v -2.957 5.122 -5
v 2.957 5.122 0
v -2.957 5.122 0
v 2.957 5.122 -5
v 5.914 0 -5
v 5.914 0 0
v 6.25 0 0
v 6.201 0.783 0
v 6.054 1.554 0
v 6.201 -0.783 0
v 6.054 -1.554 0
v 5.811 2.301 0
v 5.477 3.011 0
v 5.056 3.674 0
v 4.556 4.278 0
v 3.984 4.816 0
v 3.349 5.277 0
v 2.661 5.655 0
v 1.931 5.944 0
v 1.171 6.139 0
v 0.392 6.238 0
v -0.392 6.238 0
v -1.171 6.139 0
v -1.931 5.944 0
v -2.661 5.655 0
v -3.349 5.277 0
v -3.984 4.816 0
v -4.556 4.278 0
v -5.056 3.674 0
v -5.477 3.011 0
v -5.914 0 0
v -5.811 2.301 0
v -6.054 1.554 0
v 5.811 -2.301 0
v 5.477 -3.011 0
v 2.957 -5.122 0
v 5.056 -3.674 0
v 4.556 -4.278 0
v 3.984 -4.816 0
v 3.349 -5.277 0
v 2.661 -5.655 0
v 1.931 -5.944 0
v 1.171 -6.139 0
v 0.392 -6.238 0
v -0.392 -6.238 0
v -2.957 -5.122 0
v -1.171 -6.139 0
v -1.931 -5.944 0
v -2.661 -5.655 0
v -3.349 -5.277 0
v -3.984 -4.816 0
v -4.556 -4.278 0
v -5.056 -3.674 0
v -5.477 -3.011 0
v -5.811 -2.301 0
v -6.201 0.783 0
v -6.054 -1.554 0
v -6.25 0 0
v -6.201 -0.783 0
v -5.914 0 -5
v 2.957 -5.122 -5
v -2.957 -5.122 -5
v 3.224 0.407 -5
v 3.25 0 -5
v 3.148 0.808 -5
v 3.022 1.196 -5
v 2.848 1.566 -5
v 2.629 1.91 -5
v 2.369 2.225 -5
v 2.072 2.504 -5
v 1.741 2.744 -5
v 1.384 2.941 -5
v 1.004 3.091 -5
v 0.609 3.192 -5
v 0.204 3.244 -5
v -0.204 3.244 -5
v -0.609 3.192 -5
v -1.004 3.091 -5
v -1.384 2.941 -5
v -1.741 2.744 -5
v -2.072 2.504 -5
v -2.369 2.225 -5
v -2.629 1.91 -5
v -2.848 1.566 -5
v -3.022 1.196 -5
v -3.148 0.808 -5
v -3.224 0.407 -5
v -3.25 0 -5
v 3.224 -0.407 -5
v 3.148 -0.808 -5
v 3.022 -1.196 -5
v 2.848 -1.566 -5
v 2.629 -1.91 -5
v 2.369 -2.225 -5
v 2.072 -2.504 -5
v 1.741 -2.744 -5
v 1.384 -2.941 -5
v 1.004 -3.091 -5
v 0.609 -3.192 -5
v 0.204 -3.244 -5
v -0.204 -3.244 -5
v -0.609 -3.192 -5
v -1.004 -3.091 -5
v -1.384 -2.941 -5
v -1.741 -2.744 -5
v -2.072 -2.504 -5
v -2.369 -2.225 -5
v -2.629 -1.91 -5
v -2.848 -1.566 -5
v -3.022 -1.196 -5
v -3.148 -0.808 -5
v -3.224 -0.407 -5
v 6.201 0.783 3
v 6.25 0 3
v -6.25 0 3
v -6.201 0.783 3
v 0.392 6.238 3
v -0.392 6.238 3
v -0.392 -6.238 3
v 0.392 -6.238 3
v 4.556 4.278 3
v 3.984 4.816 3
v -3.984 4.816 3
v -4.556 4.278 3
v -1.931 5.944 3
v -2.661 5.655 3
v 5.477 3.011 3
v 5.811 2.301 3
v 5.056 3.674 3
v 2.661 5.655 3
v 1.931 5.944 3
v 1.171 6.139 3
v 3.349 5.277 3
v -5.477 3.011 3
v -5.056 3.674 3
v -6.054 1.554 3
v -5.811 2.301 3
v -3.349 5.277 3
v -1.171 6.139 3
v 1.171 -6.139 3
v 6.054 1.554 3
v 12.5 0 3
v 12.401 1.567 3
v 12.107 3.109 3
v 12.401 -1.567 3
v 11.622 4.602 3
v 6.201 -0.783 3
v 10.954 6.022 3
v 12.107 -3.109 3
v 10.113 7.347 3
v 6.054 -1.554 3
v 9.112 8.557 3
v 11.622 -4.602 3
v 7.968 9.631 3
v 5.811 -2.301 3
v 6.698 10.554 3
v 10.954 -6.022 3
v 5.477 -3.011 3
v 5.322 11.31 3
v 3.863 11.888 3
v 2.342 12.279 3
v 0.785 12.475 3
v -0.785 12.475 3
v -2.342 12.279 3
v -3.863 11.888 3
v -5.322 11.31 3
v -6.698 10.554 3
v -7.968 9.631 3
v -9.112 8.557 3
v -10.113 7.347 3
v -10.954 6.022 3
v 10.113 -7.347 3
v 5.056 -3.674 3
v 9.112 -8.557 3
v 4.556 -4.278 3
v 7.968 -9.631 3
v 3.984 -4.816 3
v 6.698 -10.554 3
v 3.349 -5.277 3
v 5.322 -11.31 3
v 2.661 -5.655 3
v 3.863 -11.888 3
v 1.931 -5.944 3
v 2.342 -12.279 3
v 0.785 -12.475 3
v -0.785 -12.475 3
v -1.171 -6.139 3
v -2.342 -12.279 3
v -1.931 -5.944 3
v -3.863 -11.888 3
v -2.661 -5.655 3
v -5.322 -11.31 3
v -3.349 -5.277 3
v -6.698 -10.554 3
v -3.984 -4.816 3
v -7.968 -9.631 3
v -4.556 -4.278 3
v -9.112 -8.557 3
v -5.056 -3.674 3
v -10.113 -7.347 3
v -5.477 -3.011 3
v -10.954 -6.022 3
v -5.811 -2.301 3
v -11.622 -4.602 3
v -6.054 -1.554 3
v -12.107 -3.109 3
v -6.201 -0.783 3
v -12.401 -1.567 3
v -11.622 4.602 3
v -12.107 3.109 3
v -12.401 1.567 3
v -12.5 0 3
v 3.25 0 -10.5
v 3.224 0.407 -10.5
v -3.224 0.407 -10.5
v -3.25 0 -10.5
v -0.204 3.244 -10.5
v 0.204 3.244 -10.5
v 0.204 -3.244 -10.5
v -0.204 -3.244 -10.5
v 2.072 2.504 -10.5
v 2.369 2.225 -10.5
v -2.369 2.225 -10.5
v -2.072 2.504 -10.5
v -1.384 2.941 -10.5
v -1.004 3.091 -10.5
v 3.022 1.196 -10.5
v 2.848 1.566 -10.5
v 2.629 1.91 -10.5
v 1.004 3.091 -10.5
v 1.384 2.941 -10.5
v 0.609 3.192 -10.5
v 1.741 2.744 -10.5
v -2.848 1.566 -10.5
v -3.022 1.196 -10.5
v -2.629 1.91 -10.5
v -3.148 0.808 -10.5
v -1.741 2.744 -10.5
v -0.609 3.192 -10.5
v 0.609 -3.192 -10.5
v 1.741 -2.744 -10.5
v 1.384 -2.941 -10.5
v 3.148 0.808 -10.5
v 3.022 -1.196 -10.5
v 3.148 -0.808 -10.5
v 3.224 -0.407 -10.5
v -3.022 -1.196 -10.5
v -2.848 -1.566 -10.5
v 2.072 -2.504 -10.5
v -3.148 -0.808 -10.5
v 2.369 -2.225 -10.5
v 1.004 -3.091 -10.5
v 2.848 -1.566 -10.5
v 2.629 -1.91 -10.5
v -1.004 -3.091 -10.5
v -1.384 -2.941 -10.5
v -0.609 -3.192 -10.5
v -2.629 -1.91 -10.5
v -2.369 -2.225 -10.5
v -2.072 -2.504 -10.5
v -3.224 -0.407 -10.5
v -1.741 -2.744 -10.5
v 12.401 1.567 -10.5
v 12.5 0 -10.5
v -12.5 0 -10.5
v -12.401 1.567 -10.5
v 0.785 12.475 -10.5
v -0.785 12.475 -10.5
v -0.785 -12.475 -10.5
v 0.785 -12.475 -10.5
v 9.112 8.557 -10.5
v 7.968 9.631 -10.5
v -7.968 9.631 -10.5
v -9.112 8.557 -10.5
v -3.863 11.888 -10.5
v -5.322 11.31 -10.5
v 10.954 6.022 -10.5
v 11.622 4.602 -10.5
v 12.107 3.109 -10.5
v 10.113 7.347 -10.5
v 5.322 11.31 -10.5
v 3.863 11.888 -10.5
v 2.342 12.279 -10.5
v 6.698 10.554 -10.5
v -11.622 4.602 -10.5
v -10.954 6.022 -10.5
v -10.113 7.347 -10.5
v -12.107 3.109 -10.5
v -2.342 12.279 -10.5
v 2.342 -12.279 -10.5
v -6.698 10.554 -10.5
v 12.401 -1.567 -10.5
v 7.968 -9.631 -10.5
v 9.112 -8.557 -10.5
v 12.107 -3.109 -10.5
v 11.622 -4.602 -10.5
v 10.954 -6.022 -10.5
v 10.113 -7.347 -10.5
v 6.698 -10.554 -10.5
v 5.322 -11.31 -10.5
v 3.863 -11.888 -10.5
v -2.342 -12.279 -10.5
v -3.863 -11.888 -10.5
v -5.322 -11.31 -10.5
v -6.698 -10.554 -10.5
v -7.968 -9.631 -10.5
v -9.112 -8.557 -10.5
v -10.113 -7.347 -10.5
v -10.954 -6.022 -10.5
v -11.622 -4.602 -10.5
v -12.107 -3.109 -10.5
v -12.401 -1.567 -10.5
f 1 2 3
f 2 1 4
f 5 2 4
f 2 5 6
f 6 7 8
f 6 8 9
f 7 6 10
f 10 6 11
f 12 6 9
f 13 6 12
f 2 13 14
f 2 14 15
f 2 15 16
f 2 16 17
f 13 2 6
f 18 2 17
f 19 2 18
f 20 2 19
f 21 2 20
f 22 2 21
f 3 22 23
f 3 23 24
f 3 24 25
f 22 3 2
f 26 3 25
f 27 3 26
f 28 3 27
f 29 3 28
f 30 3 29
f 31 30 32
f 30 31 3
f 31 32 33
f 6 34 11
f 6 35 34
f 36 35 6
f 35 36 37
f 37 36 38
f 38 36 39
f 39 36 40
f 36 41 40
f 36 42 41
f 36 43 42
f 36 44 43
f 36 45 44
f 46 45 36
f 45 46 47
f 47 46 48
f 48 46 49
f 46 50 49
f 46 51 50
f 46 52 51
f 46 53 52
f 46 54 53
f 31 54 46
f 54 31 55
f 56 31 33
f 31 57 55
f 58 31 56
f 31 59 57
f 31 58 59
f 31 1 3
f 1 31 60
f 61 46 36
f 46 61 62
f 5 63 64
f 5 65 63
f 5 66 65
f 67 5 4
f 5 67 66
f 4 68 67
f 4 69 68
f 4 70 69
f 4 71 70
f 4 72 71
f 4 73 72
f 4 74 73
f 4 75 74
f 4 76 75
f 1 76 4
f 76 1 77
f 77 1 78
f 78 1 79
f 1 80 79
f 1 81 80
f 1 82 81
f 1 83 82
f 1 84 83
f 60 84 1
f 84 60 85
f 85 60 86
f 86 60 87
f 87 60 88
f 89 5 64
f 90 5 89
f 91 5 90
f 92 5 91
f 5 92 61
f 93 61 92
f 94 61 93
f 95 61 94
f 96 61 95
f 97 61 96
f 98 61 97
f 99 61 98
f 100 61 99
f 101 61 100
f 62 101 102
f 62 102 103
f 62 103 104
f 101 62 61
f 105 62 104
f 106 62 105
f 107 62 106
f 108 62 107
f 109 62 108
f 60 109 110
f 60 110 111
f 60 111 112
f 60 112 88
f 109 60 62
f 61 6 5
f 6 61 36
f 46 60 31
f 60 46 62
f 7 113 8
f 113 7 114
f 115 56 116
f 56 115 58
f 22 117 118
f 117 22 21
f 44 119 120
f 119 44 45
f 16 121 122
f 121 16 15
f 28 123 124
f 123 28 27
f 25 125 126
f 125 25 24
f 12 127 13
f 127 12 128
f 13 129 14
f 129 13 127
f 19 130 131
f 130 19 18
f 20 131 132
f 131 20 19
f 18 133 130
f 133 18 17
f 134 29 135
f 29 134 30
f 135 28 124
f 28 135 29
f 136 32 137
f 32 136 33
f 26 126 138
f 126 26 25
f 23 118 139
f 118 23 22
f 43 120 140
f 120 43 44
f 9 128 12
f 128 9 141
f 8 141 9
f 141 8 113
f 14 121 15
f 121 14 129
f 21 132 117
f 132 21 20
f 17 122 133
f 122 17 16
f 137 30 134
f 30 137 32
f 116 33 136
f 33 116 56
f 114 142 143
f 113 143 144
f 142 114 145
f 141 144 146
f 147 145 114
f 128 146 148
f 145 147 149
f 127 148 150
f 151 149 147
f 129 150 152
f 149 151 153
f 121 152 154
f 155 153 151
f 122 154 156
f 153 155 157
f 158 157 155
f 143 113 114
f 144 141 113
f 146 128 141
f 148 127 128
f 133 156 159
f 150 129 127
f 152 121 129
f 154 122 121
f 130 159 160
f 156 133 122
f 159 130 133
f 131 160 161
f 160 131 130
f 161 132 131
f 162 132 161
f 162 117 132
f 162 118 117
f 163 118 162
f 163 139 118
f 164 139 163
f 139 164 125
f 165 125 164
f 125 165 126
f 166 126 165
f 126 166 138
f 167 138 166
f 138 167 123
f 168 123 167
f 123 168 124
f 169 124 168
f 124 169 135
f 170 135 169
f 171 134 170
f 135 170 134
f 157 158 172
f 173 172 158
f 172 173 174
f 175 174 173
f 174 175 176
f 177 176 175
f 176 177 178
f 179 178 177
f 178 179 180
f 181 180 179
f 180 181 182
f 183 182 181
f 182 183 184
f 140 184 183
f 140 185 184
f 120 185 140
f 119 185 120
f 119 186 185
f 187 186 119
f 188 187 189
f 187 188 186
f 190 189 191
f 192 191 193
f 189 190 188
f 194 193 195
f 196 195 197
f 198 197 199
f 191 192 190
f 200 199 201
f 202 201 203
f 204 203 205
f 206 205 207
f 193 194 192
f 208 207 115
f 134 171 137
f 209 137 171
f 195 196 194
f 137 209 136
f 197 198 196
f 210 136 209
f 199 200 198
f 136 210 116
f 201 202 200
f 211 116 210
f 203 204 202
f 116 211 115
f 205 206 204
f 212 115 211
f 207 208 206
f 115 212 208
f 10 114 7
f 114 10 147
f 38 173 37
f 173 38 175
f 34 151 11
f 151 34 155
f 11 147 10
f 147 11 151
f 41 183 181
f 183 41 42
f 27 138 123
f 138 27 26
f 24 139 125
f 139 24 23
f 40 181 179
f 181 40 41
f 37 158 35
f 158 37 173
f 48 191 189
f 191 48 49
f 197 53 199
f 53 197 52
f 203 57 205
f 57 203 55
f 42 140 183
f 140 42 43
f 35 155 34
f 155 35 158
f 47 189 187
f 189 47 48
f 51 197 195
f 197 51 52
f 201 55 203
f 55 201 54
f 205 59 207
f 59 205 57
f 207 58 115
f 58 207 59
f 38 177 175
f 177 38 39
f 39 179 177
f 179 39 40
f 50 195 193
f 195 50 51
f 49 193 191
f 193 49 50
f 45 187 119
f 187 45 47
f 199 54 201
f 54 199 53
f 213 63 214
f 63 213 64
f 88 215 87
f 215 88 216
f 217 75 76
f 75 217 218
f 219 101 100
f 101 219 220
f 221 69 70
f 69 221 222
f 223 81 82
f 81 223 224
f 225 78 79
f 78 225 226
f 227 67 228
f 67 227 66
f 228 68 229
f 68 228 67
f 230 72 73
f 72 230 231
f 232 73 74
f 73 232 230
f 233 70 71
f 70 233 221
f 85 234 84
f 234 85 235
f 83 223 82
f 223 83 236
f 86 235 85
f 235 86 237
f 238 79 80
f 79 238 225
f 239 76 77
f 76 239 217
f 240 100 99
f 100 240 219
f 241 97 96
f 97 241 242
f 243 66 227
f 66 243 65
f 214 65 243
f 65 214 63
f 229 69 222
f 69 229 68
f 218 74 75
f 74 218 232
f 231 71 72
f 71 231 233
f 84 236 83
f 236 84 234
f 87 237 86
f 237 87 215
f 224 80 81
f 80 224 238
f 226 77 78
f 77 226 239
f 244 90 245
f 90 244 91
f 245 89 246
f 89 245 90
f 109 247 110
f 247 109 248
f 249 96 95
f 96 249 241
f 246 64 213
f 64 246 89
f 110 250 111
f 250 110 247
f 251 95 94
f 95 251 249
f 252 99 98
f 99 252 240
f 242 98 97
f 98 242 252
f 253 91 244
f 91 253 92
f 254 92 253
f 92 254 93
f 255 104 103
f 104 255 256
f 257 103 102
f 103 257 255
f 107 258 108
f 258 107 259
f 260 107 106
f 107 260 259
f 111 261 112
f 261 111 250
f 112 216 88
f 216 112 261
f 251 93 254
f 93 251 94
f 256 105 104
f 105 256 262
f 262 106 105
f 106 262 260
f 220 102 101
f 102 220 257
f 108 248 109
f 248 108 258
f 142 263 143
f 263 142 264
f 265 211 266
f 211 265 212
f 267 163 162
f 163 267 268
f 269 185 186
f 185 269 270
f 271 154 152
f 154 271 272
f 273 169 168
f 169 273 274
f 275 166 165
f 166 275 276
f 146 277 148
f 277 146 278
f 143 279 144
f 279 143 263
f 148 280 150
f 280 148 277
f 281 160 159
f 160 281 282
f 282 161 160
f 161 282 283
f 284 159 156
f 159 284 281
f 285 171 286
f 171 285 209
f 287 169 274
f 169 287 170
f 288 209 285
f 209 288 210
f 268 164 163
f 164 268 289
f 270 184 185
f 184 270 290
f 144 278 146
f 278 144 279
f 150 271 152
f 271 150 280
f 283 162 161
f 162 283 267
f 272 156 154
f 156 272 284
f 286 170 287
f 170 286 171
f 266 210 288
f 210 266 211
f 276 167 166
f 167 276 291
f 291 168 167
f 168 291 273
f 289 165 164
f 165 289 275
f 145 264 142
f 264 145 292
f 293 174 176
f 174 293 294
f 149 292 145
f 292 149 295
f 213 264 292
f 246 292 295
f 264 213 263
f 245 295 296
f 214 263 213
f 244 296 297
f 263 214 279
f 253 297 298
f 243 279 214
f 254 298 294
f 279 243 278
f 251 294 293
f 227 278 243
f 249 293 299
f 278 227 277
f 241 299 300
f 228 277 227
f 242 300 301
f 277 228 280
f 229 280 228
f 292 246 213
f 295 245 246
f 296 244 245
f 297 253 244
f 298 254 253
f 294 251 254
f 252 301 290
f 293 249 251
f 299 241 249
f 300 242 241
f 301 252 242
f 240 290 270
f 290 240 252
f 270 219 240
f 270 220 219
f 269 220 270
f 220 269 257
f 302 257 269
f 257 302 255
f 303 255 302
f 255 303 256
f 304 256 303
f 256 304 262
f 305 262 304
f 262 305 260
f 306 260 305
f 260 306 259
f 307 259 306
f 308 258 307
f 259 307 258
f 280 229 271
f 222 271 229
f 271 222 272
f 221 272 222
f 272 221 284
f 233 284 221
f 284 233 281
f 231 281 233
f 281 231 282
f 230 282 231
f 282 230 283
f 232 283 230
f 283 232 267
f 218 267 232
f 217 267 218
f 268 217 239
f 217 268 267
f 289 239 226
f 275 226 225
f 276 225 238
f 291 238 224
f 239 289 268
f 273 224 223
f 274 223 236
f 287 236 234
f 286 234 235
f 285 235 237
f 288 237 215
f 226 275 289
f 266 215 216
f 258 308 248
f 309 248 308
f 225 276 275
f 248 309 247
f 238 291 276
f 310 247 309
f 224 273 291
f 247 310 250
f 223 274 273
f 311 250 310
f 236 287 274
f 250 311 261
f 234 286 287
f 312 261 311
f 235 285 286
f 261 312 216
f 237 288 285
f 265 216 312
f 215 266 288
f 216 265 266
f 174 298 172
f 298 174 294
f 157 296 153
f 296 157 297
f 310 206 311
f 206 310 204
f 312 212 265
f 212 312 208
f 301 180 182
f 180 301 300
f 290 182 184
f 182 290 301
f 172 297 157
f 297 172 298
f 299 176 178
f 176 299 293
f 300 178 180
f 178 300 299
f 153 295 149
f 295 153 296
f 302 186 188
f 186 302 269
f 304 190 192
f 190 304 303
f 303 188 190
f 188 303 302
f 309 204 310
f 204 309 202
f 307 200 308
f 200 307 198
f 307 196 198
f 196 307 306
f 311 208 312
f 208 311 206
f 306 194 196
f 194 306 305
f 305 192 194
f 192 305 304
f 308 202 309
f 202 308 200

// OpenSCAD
$fn = 50;

difference() {
	union() {
		translate(v = [0, 0, -10.5]) {
			cylinder(h = 13.5, r = 12.5);
		}
	}
	union() {
		translate(v = [0, 0, 0]) {
			rotate(a = [0, 0, 0]) {
				difference() {
					union() {
						translate(v = [0, 0, -5]) {
							linear_extrude(height = 5) {
								polygon(points = [[5.914249999999999, 0.0], [2.957125, 5.1218907443321156], [-2.9571249999999982, 5.1218907443321156], [-5.914249999999999, 7.242867331857232e-16], [-2.9571250000000022, -5.121890744332115], [2.9571249999999956, -5.121890744332118]]);
							}
						}
					}
					union();
				}
			}
		}
		#cylinder(h = 3, r = 6.25);
		#translate(v = [0, 0, -100.0]) {
			cylinder(h = 200, r = 3.25);
		}
	}
}
